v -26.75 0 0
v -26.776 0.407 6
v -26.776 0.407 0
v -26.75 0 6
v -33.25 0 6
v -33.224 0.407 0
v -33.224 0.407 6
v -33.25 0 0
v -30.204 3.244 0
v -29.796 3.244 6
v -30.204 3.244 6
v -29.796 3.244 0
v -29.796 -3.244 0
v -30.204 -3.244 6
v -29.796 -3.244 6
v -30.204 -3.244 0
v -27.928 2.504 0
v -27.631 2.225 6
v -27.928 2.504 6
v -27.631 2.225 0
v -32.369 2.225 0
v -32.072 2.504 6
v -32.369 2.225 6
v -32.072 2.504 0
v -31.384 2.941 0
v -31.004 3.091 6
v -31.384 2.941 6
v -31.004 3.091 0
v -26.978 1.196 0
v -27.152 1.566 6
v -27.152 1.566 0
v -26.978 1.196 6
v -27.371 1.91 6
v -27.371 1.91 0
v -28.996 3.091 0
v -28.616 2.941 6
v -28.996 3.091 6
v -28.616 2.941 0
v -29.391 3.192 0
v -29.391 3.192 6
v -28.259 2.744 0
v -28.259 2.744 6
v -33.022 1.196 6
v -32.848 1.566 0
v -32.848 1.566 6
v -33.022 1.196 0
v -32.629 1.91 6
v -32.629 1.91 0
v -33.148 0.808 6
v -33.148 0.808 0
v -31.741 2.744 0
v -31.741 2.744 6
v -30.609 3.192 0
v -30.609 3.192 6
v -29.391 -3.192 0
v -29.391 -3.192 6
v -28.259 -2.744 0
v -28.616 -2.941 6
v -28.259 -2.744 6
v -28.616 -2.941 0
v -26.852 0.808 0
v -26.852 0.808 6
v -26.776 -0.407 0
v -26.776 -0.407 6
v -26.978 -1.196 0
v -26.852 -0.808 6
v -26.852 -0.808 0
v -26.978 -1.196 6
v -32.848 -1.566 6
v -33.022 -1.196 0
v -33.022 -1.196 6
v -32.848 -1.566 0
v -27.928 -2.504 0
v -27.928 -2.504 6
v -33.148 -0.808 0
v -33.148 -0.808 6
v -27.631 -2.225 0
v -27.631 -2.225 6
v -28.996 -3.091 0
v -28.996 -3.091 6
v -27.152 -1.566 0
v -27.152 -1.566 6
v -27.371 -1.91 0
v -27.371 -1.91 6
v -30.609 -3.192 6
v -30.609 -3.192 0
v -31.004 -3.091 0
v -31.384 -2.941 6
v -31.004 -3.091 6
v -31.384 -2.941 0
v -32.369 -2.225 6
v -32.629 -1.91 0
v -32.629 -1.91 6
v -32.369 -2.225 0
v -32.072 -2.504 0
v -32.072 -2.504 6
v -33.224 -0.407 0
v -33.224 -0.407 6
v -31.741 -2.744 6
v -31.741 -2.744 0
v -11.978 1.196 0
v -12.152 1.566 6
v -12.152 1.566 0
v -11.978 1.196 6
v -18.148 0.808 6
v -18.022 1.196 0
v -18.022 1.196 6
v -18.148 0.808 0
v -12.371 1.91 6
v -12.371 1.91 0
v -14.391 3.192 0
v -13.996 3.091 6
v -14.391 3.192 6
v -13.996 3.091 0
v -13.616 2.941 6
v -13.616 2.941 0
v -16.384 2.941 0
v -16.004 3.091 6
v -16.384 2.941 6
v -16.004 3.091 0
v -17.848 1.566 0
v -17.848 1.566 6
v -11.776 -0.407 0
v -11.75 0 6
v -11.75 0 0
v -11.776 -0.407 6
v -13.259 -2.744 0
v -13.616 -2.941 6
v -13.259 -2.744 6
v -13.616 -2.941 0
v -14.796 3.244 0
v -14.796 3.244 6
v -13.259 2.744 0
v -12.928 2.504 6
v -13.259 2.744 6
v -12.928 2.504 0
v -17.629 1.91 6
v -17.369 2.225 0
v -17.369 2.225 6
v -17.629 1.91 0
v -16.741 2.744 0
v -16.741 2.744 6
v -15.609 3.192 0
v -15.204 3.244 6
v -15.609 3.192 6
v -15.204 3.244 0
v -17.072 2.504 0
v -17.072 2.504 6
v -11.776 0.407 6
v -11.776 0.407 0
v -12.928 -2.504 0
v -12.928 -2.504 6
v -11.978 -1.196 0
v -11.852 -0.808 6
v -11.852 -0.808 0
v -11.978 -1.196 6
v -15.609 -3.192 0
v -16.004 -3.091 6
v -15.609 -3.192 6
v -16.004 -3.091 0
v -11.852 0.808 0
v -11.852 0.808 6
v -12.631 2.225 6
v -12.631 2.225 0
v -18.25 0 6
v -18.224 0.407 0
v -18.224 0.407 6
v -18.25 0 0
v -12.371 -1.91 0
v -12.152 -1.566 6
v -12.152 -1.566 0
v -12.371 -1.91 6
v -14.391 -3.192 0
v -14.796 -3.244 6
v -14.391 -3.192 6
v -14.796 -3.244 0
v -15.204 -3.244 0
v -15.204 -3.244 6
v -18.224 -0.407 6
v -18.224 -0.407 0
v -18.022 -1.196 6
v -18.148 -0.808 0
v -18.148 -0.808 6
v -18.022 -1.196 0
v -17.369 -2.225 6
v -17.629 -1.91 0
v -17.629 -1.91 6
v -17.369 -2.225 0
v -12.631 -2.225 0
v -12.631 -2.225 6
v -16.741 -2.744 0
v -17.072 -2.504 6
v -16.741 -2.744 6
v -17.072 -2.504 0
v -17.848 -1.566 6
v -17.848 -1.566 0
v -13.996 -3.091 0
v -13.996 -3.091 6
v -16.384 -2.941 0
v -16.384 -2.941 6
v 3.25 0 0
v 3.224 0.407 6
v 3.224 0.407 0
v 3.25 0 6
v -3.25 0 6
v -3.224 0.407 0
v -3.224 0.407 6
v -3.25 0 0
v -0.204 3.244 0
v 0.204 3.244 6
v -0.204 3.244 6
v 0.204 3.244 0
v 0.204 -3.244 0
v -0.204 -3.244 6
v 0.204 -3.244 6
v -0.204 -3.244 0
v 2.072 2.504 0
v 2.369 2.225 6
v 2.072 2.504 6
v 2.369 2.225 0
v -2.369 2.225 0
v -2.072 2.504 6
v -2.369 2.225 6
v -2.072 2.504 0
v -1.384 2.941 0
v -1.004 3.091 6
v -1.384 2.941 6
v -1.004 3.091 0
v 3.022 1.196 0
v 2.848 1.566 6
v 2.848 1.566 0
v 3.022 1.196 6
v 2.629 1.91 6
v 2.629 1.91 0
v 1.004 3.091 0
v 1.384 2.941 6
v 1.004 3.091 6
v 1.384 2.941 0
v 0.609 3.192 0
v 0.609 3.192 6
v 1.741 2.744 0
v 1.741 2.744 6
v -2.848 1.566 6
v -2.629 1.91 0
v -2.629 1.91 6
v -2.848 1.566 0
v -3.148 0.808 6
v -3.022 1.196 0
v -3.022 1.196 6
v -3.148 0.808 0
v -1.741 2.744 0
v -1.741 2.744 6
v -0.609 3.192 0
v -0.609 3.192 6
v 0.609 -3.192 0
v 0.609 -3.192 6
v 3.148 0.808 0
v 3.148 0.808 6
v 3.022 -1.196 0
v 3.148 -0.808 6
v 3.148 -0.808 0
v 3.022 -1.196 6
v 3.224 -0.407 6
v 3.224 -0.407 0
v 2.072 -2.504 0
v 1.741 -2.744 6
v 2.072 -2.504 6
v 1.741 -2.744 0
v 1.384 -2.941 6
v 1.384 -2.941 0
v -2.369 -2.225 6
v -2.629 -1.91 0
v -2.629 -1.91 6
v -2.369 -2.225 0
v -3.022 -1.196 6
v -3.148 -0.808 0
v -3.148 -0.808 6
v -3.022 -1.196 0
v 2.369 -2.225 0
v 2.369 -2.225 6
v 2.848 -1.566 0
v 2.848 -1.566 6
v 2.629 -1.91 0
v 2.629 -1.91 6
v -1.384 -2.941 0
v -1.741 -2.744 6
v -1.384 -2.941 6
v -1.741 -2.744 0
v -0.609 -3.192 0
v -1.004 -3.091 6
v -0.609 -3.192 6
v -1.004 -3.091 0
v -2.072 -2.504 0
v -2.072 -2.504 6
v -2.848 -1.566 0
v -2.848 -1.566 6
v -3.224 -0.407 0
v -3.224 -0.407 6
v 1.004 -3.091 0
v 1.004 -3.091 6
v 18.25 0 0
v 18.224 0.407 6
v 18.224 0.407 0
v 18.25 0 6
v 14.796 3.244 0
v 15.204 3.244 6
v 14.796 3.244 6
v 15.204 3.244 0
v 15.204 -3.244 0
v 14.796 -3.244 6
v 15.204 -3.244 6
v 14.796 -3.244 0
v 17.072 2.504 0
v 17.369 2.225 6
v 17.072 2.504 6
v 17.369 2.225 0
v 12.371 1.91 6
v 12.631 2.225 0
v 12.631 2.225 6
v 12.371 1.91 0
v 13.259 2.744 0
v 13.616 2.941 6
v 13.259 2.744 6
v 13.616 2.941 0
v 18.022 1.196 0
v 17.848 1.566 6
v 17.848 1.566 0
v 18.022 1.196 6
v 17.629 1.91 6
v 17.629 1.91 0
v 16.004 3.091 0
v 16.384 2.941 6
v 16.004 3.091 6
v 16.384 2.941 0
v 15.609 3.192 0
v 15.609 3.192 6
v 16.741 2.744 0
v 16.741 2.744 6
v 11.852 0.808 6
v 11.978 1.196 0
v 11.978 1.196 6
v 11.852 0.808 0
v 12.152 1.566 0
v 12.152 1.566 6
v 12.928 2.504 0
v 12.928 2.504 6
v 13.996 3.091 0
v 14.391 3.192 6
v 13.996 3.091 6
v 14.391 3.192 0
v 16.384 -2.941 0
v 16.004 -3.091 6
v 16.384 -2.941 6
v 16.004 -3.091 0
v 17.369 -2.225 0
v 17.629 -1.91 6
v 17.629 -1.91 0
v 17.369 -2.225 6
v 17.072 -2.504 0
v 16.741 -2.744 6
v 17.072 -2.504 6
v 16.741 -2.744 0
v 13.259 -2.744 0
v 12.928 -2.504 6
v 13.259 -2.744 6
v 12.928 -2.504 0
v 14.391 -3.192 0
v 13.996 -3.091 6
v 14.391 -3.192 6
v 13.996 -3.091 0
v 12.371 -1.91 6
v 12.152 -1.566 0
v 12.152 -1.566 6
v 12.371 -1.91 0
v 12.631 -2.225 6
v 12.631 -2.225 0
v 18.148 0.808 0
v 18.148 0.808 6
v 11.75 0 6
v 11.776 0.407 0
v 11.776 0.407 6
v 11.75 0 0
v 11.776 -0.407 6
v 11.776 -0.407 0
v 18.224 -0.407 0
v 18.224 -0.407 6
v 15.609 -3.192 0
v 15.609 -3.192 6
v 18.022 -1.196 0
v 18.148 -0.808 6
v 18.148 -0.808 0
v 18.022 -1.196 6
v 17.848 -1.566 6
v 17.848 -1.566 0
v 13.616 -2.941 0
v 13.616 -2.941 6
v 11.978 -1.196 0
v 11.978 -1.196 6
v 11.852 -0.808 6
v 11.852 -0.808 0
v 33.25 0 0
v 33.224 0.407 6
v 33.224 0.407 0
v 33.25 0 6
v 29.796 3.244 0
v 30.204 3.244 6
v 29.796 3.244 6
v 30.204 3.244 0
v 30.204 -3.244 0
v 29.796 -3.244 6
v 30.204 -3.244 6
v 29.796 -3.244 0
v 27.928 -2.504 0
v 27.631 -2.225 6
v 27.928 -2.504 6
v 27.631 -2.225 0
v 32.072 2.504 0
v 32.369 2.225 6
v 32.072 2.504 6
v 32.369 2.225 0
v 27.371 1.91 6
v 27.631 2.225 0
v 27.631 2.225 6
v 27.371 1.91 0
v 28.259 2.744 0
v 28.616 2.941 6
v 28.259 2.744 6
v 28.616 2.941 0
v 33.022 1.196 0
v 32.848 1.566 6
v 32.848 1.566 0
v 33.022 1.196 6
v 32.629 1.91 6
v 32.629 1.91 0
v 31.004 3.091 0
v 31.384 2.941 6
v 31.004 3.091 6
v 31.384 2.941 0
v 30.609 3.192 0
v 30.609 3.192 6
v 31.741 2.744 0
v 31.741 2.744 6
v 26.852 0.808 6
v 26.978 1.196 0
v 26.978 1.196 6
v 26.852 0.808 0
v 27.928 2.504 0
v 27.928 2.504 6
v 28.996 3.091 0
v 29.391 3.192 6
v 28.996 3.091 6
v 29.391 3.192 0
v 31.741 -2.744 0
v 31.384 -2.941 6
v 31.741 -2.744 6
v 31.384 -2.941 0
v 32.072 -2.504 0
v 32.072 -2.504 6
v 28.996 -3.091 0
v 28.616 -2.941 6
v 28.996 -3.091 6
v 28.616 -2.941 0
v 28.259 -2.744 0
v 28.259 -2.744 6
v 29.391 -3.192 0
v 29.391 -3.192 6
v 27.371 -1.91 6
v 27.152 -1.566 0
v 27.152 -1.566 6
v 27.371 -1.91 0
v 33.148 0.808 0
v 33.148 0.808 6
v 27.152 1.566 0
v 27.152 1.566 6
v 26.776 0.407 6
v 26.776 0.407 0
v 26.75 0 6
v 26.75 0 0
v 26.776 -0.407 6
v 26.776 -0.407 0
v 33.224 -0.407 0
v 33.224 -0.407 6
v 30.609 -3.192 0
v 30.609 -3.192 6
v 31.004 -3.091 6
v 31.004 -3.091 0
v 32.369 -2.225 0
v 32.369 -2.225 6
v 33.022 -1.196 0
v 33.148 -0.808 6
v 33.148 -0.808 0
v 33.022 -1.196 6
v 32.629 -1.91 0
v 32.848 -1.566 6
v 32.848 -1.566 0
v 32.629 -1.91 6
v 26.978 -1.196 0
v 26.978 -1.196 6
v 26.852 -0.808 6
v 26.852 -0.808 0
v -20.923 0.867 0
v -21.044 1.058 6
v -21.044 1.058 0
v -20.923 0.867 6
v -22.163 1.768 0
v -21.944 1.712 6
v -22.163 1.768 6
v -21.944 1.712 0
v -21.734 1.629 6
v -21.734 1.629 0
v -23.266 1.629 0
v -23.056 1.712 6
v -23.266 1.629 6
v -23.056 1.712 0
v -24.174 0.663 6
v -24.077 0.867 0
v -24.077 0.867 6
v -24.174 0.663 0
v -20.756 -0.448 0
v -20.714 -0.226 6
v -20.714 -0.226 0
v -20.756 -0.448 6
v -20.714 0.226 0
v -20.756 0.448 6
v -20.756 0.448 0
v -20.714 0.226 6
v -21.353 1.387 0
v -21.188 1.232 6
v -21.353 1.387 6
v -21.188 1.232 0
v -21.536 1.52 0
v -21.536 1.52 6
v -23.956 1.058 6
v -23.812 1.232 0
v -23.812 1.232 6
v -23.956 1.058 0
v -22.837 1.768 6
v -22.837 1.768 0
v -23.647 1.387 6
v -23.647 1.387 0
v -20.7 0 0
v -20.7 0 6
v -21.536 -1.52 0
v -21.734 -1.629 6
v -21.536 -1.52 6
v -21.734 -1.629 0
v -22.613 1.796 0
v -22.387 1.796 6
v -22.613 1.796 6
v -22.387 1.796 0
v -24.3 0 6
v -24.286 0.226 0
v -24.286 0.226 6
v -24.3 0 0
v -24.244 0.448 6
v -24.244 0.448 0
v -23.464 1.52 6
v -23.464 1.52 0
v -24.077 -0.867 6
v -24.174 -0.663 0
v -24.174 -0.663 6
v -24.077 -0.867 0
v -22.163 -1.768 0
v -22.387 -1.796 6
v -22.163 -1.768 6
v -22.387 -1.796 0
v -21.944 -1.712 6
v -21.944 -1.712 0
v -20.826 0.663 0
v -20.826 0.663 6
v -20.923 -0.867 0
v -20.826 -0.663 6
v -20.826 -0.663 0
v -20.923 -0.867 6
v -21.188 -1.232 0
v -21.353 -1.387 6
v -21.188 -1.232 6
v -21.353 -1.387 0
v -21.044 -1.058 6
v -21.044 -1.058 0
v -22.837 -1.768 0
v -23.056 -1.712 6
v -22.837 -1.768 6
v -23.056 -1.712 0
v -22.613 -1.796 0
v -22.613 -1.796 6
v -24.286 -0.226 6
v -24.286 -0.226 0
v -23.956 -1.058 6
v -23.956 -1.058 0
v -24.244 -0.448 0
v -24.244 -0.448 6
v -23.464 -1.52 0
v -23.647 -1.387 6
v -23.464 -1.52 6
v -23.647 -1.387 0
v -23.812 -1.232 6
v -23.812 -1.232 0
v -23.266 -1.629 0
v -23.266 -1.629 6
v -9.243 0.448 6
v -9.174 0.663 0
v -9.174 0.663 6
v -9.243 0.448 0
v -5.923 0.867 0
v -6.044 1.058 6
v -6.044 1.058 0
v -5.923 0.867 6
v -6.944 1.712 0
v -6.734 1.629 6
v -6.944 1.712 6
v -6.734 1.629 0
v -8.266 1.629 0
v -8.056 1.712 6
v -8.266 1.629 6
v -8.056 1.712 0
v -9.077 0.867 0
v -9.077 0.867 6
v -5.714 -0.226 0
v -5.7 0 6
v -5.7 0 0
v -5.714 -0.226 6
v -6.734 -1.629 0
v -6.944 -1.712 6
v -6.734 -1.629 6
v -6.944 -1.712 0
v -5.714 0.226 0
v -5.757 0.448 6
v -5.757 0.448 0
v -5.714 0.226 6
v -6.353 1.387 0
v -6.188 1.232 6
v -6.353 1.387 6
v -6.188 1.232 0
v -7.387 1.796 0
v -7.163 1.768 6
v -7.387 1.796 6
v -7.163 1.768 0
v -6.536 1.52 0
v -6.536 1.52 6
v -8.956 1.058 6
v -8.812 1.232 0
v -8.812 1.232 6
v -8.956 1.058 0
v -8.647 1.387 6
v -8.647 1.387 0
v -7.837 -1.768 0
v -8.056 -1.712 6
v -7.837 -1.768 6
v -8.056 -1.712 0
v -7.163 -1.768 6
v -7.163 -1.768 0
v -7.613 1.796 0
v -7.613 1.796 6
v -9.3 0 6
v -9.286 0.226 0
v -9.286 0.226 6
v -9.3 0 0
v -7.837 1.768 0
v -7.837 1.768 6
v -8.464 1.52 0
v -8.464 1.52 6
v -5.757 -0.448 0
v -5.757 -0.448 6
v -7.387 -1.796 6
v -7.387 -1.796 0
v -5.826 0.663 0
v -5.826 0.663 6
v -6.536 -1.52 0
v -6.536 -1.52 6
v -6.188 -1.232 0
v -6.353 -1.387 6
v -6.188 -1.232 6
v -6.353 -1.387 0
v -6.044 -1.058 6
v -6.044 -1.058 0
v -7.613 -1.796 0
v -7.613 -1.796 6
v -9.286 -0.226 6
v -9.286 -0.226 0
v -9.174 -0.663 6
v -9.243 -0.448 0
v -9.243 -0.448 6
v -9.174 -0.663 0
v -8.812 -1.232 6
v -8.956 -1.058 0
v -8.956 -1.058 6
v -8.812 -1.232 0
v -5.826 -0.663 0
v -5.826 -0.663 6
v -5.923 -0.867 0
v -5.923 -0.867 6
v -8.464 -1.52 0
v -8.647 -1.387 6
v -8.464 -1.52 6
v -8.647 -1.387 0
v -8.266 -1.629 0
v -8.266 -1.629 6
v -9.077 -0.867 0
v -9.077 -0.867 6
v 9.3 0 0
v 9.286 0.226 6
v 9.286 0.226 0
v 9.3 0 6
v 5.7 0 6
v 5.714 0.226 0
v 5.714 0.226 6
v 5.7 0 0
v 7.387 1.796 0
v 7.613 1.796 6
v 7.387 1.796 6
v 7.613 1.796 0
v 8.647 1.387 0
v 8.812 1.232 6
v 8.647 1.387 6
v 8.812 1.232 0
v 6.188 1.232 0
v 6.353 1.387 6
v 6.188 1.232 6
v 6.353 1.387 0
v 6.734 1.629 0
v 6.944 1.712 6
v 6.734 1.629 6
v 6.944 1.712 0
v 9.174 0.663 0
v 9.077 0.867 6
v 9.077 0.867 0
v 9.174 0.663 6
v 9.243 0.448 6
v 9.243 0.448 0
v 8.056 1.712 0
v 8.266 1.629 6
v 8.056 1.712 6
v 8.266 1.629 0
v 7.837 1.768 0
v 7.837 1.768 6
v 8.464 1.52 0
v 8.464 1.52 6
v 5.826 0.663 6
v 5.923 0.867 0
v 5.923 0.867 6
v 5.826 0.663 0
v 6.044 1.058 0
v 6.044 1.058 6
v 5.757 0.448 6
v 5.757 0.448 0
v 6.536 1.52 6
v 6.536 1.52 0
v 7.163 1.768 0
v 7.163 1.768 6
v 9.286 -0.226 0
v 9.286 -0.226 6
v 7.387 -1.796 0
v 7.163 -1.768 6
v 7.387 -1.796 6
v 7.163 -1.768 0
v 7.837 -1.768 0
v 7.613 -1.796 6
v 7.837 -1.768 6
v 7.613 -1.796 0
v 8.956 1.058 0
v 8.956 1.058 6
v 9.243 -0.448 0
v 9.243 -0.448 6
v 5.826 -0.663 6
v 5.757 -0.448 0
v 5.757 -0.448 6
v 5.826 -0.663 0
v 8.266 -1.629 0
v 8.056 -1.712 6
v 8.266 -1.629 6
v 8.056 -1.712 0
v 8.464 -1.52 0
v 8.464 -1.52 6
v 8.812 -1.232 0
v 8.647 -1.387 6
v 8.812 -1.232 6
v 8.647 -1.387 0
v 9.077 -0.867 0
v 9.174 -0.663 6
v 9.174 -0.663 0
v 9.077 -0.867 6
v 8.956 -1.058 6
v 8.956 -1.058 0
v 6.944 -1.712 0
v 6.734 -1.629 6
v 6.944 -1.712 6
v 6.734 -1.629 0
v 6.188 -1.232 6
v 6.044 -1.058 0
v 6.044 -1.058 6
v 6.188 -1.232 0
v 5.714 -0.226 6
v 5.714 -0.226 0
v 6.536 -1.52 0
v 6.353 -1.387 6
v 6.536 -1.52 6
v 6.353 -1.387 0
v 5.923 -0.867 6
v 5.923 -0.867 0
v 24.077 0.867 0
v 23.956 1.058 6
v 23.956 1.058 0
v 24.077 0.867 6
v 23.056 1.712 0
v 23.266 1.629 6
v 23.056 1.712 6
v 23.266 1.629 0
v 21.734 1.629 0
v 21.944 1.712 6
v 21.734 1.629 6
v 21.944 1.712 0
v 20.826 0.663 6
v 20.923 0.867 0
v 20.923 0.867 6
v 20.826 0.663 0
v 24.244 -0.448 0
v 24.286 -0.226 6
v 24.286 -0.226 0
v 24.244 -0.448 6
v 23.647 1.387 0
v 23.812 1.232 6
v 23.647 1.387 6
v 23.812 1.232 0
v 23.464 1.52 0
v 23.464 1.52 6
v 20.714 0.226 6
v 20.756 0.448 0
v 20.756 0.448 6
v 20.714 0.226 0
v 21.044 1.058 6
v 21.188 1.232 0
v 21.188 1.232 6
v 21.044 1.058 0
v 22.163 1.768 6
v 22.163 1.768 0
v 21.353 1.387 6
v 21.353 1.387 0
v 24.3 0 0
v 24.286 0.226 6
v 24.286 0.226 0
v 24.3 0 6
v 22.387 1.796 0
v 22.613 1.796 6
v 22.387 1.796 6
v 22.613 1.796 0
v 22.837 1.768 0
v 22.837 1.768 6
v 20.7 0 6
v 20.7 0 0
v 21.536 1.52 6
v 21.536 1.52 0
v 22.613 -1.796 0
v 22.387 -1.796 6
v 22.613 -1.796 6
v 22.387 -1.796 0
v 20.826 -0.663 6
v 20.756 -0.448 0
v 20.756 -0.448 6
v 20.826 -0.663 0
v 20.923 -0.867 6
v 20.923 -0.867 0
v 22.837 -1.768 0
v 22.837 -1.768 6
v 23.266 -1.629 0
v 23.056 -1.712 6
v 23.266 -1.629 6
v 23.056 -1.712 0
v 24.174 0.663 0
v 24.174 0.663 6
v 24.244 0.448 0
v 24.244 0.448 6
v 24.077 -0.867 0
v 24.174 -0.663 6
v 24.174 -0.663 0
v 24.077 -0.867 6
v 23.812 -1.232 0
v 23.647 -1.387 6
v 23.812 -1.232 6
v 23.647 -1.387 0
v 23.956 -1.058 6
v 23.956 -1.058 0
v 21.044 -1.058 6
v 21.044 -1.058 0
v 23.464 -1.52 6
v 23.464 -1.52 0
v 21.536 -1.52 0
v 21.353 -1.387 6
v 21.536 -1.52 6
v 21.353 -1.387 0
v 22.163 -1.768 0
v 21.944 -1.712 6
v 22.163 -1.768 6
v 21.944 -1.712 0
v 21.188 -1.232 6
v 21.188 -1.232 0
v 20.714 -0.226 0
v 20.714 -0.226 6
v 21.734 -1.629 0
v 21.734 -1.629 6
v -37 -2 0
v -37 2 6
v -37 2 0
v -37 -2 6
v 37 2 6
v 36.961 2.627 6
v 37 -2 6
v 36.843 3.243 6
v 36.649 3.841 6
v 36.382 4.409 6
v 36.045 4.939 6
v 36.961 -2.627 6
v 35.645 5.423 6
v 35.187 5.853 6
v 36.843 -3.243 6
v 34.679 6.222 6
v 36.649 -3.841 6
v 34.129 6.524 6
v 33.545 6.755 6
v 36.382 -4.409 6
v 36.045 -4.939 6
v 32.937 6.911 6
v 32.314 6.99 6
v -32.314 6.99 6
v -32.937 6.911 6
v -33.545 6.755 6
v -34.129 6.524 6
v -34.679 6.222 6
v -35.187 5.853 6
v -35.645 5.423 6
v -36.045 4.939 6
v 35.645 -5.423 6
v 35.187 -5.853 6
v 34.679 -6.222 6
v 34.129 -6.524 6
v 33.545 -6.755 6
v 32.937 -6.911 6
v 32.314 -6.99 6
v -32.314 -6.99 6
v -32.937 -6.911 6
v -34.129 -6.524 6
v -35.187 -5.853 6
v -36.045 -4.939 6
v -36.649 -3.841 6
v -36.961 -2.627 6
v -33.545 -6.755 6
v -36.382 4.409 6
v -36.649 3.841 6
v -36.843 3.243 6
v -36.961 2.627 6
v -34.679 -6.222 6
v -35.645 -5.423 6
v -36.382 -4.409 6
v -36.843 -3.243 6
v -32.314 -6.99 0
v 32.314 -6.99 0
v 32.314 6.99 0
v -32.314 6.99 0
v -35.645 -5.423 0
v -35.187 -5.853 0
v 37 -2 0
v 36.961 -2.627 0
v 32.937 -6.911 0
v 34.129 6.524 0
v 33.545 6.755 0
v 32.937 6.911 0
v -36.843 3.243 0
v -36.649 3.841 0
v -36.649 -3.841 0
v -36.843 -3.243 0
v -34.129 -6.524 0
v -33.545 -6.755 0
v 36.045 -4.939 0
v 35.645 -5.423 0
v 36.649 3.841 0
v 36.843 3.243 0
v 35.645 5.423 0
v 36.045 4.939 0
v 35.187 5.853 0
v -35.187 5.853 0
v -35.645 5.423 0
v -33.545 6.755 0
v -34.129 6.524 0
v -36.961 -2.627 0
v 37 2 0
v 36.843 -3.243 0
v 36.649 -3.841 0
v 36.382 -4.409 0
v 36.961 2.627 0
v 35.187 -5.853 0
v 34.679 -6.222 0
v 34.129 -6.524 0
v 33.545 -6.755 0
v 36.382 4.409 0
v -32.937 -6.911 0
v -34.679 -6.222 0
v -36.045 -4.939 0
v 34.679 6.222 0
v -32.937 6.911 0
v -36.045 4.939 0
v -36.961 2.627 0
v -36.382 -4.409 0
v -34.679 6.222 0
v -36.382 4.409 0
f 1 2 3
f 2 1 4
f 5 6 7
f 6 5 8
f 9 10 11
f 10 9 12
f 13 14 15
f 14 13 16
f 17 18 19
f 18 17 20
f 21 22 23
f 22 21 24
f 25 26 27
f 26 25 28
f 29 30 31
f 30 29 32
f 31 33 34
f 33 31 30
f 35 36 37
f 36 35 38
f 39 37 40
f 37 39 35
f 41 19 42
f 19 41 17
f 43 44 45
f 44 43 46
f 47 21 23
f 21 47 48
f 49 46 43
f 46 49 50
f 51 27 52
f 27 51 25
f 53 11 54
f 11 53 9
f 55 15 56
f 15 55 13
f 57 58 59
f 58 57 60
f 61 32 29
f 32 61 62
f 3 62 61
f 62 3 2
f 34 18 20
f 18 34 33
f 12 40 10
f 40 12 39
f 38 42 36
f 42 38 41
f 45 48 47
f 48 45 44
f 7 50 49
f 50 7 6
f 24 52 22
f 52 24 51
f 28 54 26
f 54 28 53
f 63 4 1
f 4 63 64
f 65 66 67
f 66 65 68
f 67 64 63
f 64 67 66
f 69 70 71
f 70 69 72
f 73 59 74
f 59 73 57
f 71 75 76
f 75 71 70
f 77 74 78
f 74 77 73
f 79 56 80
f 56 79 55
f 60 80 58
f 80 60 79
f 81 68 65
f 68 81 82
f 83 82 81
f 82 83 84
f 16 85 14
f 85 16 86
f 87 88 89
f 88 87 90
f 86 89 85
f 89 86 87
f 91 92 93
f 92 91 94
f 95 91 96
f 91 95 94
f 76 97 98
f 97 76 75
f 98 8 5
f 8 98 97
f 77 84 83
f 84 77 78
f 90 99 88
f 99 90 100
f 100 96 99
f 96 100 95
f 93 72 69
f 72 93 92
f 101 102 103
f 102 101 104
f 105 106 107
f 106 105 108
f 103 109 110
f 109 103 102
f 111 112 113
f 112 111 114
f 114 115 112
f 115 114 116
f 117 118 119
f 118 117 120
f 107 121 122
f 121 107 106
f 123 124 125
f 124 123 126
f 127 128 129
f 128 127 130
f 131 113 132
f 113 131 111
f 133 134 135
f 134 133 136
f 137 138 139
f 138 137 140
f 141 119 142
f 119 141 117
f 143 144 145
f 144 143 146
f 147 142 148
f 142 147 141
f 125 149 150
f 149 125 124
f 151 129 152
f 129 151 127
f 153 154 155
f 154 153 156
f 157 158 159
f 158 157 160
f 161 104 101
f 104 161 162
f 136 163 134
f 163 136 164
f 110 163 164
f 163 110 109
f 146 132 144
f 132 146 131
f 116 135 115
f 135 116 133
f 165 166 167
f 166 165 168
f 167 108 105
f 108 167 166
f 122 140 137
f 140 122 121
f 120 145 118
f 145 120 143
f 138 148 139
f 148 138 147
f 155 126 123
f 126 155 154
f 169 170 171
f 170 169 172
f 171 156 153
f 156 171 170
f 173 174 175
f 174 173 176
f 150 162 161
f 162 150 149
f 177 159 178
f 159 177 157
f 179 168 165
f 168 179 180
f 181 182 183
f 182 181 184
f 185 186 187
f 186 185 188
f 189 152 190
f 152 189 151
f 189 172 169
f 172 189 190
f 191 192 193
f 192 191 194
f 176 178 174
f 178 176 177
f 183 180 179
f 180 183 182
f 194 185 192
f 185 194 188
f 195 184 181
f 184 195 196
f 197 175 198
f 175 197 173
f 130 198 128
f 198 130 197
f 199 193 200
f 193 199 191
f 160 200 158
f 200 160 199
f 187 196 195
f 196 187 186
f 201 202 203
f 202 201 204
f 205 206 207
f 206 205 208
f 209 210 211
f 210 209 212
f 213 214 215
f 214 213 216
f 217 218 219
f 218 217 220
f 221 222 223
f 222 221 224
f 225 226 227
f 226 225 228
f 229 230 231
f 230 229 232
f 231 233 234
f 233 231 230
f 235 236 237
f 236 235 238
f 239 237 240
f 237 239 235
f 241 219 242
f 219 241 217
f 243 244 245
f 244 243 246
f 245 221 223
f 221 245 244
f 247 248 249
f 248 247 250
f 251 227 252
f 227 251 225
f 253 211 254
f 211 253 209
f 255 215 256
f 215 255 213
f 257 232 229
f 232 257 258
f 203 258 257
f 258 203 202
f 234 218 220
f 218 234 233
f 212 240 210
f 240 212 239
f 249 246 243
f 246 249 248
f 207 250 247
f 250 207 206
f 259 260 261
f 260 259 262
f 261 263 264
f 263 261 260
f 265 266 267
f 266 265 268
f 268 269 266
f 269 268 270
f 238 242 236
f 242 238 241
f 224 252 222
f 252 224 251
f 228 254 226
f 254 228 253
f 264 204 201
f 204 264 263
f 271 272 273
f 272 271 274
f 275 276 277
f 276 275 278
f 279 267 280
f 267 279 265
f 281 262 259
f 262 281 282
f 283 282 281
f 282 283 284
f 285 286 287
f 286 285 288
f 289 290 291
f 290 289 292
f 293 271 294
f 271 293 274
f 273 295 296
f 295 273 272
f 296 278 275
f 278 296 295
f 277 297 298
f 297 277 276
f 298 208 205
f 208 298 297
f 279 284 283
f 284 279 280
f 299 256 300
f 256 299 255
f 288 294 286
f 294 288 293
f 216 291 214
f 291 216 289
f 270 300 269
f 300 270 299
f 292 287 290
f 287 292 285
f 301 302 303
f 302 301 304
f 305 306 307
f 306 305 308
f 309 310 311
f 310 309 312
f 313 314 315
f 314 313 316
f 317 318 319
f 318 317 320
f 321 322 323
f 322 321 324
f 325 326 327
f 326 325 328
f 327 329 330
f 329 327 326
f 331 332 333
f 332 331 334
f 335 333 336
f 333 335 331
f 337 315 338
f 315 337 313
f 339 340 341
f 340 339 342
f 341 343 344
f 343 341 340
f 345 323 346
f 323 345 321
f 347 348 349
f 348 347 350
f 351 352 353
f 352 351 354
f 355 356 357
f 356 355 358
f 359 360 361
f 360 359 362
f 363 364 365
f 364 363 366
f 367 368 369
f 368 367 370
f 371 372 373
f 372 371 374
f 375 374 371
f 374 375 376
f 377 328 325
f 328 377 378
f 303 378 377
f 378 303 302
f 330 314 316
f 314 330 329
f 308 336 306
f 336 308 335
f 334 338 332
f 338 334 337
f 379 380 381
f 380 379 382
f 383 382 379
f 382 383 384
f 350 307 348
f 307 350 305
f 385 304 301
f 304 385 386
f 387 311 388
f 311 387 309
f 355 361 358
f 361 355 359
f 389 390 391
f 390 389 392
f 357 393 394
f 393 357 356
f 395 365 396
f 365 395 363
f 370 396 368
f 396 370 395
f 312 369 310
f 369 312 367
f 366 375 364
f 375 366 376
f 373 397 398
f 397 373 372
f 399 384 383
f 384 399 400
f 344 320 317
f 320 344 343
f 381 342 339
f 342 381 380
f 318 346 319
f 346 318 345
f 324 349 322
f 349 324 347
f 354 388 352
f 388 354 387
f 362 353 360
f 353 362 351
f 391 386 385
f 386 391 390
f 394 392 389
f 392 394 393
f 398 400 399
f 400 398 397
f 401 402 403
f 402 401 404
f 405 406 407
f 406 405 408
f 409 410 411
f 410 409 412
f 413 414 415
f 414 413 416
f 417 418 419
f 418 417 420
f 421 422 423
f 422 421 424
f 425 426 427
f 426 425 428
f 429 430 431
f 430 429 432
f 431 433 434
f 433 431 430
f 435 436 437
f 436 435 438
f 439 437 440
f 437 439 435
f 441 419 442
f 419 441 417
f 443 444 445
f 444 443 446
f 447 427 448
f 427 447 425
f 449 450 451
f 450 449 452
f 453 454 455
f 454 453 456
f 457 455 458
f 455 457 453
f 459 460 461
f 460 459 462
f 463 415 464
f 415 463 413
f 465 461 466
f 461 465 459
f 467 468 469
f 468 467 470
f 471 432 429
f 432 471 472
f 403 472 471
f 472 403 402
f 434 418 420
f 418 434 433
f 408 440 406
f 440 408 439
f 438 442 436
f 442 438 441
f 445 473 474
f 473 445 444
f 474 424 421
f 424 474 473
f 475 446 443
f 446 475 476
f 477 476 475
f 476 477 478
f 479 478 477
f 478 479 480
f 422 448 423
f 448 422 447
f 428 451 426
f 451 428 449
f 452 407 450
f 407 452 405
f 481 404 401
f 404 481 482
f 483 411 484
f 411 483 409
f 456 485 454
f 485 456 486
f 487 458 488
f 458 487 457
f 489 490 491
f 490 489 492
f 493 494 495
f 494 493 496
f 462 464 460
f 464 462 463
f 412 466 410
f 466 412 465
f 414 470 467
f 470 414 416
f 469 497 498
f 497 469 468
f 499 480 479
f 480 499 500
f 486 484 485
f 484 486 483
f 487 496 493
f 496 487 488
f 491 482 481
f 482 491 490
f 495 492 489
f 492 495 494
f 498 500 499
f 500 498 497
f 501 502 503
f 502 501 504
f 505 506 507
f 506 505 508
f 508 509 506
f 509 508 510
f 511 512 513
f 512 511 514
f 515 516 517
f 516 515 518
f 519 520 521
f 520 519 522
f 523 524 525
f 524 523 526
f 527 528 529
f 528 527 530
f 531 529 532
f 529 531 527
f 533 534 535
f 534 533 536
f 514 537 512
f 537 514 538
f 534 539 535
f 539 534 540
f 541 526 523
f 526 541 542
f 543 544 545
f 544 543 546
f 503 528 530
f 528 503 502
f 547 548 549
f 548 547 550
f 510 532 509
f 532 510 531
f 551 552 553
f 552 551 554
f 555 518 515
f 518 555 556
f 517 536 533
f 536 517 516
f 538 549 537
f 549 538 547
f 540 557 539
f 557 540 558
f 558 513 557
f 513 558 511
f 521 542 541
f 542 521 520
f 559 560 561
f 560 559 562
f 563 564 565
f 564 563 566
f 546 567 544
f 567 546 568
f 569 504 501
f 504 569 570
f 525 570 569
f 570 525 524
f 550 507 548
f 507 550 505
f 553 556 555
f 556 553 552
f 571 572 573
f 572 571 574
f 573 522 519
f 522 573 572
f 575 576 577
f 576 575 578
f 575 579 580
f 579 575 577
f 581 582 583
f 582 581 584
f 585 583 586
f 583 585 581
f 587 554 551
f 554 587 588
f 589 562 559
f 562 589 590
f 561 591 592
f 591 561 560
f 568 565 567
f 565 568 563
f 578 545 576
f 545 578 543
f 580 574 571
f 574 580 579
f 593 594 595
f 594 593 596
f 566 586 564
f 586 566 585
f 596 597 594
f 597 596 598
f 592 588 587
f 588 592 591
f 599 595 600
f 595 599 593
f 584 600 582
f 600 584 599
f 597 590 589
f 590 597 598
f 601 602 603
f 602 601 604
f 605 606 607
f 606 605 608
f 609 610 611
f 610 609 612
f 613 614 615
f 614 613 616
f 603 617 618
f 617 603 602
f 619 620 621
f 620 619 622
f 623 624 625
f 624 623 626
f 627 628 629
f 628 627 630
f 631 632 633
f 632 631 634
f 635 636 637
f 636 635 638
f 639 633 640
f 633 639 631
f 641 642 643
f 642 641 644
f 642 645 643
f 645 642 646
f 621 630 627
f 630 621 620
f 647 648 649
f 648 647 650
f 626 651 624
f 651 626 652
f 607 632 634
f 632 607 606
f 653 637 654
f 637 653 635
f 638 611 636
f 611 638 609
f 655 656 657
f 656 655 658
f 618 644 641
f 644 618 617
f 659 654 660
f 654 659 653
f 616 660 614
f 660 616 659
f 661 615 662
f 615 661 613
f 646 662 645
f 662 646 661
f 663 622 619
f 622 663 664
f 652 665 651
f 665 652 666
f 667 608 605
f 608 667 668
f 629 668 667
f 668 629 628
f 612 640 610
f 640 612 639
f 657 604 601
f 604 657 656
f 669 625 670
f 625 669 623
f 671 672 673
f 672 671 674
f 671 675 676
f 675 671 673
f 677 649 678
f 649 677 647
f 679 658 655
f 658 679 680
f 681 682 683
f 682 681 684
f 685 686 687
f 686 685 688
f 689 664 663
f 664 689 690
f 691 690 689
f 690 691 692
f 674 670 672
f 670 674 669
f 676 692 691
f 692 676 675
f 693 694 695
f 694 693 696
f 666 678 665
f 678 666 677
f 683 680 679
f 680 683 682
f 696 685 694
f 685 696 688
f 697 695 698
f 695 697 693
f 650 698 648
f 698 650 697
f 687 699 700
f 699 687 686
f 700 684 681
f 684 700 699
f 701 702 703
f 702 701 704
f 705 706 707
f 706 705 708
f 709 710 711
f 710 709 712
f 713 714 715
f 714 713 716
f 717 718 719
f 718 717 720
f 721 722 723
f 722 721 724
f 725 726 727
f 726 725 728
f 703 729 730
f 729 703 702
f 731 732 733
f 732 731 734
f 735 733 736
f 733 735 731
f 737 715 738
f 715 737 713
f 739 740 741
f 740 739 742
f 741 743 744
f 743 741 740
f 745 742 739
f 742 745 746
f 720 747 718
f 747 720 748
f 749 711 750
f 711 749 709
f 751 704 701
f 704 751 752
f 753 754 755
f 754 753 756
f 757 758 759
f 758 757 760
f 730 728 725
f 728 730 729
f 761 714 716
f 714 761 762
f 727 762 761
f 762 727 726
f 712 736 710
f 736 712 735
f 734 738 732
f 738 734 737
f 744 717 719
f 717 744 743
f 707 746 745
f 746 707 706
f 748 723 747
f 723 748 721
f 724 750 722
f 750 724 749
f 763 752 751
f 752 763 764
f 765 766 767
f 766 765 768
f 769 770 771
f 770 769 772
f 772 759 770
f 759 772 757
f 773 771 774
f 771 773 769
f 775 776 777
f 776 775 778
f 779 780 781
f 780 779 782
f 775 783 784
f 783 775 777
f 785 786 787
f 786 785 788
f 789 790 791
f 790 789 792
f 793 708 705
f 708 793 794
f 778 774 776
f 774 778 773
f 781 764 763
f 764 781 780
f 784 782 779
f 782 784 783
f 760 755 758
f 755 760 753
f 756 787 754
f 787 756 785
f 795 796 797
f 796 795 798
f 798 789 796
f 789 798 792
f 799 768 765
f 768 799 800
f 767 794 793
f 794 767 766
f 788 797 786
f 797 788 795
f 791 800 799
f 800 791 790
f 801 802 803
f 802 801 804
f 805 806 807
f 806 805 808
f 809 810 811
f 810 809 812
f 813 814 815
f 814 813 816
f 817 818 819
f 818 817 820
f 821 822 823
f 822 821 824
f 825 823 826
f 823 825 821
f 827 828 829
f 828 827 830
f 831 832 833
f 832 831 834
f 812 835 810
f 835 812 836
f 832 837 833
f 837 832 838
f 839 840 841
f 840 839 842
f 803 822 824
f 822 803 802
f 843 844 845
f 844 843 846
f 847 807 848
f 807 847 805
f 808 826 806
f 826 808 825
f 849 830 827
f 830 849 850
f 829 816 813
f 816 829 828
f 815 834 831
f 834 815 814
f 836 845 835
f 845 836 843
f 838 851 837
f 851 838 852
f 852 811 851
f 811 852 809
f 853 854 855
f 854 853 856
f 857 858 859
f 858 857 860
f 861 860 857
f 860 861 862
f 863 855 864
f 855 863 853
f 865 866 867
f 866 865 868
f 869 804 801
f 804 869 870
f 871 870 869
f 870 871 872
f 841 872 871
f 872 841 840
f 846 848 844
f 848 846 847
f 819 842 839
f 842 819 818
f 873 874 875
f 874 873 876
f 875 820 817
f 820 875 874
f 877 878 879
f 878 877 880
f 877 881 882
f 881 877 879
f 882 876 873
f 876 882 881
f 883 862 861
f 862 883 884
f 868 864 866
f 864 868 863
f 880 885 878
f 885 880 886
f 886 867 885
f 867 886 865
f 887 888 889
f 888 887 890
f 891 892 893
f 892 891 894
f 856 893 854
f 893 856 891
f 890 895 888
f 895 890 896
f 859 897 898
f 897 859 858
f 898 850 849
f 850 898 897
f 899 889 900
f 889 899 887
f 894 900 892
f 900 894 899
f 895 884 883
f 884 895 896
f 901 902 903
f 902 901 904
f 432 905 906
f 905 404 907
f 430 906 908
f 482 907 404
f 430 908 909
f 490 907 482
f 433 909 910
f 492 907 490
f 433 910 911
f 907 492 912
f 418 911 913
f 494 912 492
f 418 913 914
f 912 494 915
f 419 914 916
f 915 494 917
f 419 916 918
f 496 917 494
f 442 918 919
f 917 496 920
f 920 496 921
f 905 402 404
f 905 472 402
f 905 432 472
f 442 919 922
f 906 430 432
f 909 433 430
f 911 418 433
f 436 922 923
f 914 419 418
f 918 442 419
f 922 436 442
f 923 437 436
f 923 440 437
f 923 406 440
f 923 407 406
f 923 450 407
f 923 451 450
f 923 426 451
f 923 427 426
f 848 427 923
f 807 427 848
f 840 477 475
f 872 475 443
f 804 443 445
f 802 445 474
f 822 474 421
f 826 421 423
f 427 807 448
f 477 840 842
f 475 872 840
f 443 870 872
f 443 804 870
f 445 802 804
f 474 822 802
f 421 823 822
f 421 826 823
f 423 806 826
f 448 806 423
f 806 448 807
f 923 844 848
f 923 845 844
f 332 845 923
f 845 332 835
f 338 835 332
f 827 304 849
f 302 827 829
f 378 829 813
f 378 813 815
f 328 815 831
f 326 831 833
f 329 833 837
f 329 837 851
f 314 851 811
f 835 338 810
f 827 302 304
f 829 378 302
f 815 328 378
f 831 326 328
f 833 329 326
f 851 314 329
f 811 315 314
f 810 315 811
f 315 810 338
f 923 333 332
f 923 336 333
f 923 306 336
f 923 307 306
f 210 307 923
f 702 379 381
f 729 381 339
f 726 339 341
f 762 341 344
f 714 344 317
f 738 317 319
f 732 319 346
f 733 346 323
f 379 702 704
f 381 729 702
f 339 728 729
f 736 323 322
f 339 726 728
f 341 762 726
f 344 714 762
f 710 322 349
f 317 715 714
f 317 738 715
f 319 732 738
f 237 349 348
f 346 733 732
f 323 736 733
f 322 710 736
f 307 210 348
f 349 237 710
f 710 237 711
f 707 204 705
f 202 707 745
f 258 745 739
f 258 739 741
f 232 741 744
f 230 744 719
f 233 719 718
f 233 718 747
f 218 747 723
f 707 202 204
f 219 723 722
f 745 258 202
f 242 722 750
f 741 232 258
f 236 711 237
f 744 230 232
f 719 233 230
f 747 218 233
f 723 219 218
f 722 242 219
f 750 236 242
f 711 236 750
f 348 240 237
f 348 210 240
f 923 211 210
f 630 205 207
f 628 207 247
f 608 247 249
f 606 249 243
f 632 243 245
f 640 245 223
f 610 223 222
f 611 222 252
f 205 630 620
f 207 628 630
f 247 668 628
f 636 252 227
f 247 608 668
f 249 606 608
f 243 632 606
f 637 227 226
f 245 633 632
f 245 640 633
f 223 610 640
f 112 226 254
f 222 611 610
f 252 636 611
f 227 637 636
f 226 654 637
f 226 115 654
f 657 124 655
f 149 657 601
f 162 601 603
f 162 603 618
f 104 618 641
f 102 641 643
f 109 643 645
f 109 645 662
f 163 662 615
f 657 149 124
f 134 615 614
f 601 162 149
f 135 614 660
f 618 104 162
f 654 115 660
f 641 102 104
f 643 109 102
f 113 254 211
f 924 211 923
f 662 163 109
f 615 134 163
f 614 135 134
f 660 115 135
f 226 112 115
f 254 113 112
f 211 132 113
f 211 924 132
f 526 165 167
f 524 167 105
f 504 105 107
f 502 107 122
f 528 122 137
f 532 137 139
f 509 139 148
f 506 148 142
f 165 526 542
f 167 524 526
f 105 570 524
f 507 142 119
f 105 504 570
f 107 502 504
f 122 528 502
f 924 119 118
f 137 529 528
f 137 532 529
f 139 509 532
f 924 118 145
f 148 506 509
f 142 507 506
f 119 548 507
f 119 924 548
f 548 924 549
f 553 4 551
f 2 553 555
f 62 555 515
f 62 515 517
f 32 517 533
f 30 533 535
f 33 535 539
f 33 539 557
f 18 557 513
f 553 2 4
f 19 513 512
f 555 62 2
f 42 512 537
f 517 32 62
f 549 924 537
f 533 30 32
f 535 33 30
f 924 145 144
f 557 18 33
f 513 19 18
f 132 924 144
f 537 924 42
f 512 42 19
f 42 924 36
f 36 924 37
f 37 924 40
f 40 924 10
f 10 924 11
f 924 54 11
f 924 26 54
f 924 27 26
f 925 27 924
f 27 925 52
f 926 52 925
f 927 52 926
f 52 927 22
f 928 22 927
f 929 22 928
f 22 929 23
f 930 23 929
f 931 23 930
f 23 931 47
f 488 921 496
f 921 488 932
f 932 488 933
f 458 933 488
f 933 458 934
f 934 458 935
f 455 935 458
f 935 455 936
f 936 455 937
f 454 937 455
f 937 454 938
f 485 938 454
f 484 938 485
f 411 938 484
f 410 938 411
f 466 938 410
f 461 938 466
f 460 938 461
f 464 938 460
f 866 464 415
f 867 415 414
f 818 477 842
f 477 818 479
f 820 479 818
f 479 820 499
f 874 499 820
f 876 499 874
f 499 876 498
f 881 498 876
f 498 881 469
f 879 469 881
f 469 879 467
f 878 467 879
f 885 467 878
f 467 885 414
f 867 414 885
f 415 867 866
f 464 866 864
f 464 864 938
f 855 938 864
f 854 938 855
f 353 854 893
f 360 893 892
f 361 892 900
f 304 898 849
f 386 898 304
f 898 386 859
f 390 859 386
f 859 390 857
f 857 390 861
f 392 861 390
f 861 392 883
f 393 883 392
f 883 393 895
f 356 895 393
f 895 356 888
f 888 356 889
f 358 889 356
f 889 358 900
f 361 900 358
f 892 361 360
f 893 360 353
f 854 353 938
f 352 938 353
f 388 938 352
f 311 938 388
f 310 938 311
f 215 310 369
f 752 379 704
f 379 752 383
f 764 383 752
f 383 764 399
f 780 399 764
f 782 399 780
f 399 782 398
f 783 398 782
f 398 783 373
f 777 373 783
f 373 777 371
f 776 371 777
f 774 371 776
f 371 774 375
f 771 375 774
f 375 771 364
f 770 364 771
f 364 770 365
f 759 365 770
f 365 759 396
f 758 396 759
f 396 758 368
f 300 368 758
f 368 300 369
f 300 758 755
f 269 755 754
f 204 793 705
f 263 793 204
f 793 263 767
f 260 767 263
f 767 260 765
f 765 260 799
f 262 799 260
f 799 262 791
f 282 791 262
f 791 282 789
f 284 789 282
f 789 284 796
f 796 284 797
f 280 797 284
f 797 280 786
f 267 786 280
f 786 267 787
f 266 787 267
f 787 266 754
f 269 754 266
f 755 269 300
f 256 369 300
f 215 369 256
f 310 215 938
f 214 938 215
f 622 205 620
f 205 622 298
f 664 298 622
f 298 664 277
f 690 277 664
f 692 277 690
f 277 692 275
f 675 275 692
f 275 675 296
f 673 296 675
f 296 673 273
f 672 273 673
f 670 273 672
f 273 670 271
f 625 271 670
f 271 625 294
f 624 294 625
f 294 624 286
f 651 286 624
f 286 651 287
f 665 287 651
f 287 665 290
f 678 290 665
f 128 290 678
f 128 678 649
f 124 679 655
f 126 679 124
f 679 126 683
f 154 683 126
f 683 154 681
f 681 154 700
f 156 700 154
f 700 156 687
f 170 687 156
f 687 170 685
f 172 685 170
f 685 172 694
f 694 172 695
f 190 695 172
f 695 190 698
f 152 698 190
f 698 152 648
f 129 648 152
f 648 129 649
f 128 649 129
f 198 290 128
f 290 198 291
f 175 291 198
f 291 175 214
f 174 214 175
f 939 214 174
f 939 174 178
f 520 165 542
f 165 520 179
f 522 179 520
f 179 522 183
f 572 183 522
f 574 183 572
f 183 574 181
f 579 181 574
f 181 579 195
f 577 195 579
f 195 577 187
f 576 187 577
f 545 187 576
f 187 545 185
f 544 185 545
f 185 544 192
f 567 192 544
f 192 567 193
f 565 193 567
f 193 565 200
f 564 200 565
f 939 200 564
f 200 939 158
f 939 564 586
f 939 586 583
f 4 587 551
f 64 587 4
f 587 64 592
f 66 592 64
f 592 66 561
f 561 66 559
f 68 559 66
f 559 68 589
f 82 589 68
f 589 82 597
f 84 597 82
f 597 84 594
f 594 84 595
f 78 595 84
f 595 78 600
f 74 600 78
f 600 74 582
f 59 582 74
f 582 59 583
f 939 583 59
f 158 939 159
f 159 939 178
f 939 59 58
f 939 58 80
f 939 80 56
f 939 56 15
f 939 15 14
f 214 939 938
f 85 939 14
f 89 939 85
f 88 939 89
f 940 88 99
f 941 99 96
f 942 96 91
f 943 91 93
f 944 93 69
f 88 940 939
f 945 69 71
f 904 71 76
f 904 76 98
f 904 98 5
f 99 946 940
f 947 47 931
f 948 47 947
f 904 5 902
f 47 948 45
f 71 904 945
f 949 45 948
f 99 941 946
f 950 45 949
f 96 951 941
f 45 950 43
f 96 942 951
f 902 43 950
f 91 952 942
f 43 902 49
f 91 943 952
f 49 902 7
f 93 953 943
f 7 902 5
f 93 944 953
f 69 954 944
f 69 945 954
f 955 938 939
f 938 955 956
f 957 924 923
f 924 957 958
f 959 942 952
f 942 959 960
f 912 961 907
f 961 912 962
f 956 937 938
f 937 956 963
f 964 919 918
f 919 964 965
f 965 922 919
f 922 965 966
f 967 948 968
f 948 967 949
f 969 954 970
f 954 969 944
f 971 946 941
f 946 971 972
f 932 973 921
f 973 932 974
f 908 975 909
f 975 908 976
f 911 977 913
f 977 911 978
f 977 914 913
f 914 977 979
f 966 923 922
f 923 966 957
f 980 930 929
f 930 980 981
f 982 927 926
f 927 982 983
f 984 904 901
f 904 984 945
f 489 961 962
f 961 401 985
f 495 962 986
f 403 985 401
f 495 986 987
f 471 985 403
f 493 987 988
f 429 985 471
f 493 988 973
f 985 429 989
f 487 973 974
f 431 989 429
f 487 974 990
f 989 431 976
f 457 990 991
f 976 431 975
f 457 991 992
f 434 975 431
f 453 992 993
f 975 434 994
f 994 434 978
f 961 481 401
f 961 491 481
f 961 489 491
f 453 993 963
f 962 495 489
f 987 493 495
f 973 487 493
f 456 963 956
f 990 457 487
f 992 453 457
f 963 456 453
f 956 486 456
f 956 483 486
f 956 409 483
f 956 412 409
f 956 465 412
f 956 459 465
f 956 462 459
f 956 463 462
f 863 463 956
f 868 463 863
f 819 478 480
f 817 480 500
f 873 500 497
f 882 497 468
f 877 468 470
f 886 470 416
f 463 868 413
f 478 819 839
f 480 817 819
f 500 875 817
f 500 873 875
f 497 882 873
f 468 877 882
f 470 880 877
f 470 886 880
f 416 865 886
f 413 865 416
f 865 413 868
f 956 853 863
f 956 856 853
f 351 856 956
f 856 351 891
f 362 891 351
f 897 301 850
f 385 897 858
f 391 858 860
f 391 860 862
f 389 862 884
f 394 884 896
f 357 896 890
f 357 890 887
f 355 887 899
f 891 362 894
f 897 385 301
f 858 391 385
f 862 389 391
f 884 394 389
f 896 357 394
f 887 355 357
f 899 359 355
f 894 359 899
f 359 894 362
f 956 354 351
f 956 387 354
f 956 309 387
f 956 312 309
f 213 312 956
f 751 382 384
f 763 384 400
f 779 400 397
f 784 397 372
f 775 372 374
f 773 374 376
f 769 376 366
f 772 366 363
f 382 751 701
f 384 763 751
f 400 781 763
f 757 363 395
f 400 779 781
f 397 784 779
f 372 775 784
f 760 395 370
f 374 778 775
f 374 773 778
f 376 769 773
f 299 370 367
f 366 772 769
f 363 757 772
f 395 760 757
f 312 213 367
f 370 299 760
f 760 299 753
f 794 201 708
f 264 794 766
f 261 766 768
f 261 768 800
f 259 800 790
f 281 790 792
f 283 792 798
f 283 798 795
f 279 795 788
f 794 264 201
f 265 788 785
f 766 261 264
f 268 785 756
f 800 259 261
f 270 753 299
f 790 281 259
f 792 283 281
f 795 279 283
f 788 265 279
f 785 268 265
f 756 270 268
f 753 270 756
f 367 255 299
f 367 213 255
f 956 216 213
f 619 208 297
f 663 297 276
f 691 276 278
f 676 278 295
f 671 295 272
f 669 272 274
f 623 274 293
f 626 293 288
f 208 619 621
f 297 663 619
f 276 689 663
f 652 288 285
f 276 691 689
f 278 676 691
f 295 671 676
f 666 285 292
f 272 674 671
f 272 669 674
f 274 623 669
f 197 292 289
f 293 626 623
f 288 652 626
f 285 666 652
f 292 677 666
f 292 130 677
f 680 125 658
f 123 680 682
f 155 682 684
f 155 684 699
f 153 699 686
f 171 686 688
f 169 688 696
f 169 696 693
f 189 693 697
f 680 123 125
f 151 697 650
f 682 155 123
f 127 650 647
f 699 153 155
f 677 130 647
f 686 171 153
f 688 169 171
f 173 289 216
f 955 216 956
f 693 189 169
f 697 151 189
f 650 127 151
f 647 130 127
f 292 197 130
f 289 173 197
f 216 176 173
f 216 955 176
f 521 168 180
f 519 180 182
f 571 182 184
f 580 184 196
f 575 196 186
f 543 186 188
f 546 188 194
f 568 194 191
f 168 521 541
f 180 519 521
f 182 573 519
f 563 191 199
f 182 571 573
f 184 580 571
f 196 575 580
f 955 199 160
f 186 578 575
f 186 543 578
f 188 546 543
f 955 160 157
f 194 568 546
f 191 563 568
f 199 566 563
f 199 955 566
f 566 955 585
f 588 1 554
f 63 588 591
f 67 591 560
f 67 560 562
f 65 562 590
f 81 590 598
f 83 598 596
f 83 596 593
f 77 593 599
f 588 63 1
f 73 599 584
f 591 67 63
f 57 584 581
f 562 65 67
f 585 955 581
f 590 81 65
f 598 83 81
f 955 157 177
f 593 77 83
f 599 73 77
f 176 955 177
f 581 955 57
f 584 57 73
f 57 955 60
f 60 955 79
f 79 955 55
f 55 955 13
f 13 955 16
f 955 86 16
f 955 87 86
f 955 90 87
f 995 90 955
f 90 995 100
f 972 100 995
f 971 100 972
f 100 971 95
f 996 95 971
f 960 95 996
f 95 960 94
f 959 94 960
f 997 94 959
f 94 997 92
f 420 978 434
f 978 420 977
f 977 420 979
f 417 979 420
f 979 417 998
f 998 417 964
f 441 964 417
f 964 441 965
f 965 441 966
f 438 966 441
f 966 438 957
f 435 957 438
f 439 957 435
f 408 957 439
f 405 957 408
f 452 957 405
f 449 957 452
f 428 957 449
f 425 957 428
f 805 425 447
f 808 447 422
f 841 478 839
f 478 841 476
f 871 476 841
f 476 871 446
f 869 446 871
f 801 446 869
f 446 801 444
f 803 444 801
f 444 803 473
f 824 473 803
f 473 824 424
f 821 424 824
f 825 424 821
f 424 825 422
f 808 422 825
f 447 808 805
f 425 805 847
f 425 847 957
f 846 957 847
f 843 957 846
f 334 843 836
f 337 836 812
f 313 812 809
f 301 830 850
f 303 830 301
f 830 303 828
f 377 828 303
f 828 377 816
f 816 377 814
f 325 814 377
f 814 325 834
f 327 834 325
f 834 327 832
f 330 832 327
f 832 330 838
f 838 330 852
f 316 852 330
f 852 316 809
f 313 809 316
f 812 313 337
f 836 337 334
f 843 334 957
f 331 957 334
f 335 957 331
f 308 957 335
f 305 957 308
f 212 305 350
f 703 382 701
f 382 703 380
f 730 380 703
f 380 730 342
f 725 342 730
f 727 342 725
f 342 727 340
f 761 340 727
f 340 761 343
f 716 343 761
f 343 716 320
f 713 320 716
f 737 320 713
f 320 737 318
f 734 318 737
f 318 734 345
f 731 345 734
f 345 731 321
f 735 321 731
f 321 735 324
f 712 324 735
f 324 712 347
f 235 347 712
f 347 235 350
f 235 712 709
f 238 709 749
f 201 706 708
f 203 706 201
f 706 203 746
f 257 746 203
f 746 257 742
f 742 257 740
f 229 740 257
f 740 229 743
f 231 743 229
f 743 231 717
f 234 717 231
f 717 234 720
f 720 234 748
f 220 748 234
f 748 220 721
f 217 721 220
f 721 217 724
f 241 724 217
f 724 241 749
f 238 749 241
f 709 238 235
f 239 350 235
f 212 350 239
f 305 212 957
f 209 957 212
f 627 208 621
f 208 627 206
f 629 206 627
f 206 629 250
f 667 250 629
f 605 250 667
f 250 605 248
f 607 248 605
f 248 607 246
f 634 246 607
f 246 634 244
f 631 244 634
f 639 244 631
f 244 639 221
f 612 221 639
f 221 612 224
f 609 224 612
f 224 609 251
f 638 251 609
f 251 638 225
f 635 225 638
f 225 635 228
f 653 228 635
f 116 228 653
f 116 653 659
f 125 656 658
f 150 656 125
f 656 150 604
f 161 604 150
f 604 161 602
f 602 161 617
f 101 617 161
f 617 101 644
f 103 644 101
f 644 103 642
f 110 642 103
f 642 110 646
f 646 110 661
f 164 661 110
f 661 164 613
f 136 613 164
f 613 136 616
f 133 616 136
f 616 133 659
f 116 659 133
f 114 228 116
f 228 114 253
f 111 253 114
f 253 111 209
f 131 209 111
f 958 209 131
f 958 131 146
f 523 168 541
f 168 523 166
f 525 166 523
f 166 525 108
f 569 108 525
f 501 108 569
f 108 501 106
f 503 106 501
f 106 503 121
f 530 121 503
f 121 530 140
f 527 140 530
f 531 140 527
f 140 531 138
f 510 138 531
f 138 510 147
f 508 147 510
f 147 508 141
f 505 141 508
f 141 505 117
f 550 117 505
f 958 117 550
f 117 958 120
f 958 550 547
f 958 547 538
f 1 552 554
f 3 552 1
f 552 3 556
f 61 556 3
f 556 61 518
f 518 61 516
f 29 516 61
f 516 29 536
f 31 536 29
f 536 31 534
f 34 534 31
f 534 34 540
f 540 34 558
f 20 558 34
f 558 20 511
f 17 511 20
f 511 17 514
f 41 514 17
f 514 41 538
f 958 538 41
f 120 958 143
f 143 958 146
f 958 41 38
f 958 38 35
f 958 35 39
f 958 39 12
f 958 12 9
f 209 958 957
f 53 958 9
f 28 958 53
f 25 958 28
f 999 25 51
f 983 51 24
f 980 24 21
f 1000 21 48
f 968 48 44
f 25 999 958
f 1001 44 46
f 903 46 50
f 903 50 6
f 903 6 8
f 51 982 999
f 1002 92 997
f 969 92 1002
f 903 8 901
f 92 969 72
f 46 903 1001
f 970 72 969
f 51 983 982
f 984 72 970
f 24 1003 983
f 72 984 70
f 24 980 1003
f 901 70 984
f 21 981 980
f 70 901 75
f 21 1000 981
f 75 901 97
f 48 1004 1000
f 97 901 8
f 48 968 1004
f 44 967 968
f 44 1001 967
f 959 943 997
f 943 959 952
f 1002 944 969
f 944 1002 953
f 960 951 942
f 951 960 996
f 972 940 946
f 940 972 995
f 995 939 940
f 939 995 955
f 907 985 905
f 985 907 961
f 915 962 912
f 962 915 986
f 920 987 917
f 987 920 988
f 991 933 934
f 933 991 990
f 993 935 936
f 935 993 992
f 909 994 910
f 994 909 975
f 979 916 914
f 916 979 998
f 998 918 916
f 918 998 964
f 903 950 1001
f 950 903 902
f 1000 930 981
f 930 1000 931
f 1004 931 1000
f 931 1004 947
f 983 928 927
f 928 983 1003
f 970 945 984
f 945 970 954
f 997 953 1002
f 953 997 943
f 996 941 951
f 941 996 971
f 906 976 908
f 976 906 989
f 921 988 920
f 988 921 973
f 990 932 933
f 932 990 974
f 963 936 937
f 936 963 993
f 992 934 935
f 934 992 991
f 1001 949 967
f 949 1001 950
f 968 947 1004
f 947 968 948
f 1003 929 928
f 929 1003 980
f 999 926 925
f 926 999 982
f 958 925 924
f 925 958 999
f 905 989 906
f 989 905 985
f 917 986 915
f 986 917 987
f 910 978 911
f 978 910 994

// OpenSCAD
$fn = 50;


difference() {
	union() {
		translate(v = [0, 0, 0]) {
			rotate(a = [0, 0, 0]) {
				hull() {
					translate(v = [-32.0000000000, 2.0000000000, 0]) {
						rotate(a = [0, 0, 0]) {
							translate(v = [0, 0, 0]) {
								rotate(a = [0, 0, 0]) {
									cylinder(h = 6, r = 5);
								}
							}
						}
					}
					translate(v = [32.0000000000, 2.0000000000, 0]) {
						rotate(a = [0, 0, 0]) {
							translate(v = [0, 0, 0]) {
								rotate(a = [0, 0, 0]) {
									cylinder(h = 6, r = 5);
								}
							}
						}
					}
					translate(v = [-32.0000000000, -2.0000000000, 0]) {
						rotate(a = [0, 0, 0]) {
							translate(v = [0, 0, 0]) {
								rotate(a = [0, 0, 0]) {
									cylinder(h = 6, r = 5);
								}
							}
						}
					}
					translate(v = [32.0000000000, -2.0000000000, 0]) {
						rotate(a = [0, 0, 0]) {
							translate(v = [0, 0, 0]) {
								rotate(a = [0, 0, 0]) {
									cylinder(h = 6, r = 5);
								}
							}
						}
					}
				}
			}
		}
	}
	union() {
		translate(v = [-30.0000000000, 0.0000000000, 0]) {
			rotate(a = [0, 0, 0]) {
				translate(v = [0, 0, -50]) {
					rotate(a = [0, 0, 0]) {
						cylinder(h = 100, r = 3.2500000000);
					}
				}
			}
		}
		translate(v = [-15.0000000000, 0.0000000000, 0]) {
			rotate(a = [0, 0, 0]) {
				translate(v = [0, 0, -50]) {
					rotate(a = [0, 0, 0]) {
						cylinder(h = 100, r = 3.2500000000);
					}
				}
			}
		}
		translate(v = [0.0000000000, 0.0000000000, 0]) {
			rotate(a = [0, 0, 0]) {
				translate(v = [0, 0, -50]) {
					rotate(a = [0, 0, 0]) {
						cylinder(h = 100, r = 3.2500000000);
					}
				}
			}
		}
		translate(v = [15.0000000000, 0.0000000000, 0]) {
			rotate(a = [0, 0, 0]) {
				translate(v = [0, 0, -50]) {
					rotate(a = [0, 0, 0]) {
						cylinder(h = 100, r = 3.2500000000);
					}
				}
			}
		}
		translate(v = [30.0000000000, 0.0000000000, 0]) {
			rotate(a = [0, 0, 0]) {
				translate(v = [0, 0, -50]) {
					rotate(a = [0, 0, 0]) {
						cylinder(h = 100, r = 3.2500000000);
					}
				}
			}
		}
		translate(v = [-30.0000000000, 0.0000000000, 0]) {
			rotate(a = [0, 0, 0]) {
				translate(v = [0, 0, -50]) {
					rotate(a = [0, 0, 0]) {
						cylinder(h = 100, r = 1.8000000000);
					}
				}
			}
		}
		translate(v = [-22.5000000000, 0.0000000000, 0]) {
			rotate(a = [0, 0, 0]) {
				translate(v = [0, 0, -50]) {
					rotate(a = [0, 0, 0]) {
						cylinder(h = 100, r = 1.8000000000);
					}
				}
			}
		}
		translate(v = [-15.0000000000, 0.0000000000, 0]) {
			rotate(a = [0, 0, 0]) {
				translate(v = [0, 0, -50]) {
					rotate(a = [0, 0, 0]) {
						cylinder(h = 100, r = 1.8000000000);
					}
				}
			}
		}
		translate(v = [-7.5000000000, 0.0000000000, 0]) {
			rotate(a = [0, 0, 0]) {
				translate(v = [0, 0, -50]) {
					rotate(a = [0, 0, 0]) {
						cylinder(h = 100, r = 1.8000000000);
					}
				}
			}
		}
		translate(v = [0.0000000000, 0.0000000000, 0]) {
			rotate(a = [0, 0, 0]) {
				translate(v = [0, 0, -50]) {
					rotate(a = [0, 0, 0]) {
						cylinder(h = 100, r = 1.8000000000);
					}
				}
			}
		}
		translate(v = [7.5000000000, 0.0000000000, 0]) {
			rotate(a = [0, 0, 0]) {
				translate(v = [0, 0, -50]) {
					rotate(a = [0, 0, 0]) {
						cylinder(h = 100, r = 1.8000000000);
					}
				}
			}
		}
		translate(v = [15.0000000000, 0.0000000000, 0]) {
			rotate(a = [0, 0, 0]) {
				translate(v = [0, 0, -50]) {
					rotate(a = [0, 0, 0]) {
						cylinder(h = 100, r = 1.8000000000);
					}
				}
			}
		}
		translate(v = [22.5000000000, 0.0000000000, 0]) {
			rotate(a = [0, 0, 0]) {
				translate(v = [0, 0, -50]) {
					rotate(a = [0, 0, 0]) {
						cylinder(h = 100, r = 1.8000000000);
					}
				}
			}
		}
		translate(v = [30.0000000000, 0.0000000000, 0]) {
			rotate(a = [0, 0, 0]) {
				translate(v = [0, 0, -50]) {
					rotate(a = [0, 0, 0]) {
						cylinder(h = 100, r = 1.8000000000);
					}
				}
			}
		}
	}
}
